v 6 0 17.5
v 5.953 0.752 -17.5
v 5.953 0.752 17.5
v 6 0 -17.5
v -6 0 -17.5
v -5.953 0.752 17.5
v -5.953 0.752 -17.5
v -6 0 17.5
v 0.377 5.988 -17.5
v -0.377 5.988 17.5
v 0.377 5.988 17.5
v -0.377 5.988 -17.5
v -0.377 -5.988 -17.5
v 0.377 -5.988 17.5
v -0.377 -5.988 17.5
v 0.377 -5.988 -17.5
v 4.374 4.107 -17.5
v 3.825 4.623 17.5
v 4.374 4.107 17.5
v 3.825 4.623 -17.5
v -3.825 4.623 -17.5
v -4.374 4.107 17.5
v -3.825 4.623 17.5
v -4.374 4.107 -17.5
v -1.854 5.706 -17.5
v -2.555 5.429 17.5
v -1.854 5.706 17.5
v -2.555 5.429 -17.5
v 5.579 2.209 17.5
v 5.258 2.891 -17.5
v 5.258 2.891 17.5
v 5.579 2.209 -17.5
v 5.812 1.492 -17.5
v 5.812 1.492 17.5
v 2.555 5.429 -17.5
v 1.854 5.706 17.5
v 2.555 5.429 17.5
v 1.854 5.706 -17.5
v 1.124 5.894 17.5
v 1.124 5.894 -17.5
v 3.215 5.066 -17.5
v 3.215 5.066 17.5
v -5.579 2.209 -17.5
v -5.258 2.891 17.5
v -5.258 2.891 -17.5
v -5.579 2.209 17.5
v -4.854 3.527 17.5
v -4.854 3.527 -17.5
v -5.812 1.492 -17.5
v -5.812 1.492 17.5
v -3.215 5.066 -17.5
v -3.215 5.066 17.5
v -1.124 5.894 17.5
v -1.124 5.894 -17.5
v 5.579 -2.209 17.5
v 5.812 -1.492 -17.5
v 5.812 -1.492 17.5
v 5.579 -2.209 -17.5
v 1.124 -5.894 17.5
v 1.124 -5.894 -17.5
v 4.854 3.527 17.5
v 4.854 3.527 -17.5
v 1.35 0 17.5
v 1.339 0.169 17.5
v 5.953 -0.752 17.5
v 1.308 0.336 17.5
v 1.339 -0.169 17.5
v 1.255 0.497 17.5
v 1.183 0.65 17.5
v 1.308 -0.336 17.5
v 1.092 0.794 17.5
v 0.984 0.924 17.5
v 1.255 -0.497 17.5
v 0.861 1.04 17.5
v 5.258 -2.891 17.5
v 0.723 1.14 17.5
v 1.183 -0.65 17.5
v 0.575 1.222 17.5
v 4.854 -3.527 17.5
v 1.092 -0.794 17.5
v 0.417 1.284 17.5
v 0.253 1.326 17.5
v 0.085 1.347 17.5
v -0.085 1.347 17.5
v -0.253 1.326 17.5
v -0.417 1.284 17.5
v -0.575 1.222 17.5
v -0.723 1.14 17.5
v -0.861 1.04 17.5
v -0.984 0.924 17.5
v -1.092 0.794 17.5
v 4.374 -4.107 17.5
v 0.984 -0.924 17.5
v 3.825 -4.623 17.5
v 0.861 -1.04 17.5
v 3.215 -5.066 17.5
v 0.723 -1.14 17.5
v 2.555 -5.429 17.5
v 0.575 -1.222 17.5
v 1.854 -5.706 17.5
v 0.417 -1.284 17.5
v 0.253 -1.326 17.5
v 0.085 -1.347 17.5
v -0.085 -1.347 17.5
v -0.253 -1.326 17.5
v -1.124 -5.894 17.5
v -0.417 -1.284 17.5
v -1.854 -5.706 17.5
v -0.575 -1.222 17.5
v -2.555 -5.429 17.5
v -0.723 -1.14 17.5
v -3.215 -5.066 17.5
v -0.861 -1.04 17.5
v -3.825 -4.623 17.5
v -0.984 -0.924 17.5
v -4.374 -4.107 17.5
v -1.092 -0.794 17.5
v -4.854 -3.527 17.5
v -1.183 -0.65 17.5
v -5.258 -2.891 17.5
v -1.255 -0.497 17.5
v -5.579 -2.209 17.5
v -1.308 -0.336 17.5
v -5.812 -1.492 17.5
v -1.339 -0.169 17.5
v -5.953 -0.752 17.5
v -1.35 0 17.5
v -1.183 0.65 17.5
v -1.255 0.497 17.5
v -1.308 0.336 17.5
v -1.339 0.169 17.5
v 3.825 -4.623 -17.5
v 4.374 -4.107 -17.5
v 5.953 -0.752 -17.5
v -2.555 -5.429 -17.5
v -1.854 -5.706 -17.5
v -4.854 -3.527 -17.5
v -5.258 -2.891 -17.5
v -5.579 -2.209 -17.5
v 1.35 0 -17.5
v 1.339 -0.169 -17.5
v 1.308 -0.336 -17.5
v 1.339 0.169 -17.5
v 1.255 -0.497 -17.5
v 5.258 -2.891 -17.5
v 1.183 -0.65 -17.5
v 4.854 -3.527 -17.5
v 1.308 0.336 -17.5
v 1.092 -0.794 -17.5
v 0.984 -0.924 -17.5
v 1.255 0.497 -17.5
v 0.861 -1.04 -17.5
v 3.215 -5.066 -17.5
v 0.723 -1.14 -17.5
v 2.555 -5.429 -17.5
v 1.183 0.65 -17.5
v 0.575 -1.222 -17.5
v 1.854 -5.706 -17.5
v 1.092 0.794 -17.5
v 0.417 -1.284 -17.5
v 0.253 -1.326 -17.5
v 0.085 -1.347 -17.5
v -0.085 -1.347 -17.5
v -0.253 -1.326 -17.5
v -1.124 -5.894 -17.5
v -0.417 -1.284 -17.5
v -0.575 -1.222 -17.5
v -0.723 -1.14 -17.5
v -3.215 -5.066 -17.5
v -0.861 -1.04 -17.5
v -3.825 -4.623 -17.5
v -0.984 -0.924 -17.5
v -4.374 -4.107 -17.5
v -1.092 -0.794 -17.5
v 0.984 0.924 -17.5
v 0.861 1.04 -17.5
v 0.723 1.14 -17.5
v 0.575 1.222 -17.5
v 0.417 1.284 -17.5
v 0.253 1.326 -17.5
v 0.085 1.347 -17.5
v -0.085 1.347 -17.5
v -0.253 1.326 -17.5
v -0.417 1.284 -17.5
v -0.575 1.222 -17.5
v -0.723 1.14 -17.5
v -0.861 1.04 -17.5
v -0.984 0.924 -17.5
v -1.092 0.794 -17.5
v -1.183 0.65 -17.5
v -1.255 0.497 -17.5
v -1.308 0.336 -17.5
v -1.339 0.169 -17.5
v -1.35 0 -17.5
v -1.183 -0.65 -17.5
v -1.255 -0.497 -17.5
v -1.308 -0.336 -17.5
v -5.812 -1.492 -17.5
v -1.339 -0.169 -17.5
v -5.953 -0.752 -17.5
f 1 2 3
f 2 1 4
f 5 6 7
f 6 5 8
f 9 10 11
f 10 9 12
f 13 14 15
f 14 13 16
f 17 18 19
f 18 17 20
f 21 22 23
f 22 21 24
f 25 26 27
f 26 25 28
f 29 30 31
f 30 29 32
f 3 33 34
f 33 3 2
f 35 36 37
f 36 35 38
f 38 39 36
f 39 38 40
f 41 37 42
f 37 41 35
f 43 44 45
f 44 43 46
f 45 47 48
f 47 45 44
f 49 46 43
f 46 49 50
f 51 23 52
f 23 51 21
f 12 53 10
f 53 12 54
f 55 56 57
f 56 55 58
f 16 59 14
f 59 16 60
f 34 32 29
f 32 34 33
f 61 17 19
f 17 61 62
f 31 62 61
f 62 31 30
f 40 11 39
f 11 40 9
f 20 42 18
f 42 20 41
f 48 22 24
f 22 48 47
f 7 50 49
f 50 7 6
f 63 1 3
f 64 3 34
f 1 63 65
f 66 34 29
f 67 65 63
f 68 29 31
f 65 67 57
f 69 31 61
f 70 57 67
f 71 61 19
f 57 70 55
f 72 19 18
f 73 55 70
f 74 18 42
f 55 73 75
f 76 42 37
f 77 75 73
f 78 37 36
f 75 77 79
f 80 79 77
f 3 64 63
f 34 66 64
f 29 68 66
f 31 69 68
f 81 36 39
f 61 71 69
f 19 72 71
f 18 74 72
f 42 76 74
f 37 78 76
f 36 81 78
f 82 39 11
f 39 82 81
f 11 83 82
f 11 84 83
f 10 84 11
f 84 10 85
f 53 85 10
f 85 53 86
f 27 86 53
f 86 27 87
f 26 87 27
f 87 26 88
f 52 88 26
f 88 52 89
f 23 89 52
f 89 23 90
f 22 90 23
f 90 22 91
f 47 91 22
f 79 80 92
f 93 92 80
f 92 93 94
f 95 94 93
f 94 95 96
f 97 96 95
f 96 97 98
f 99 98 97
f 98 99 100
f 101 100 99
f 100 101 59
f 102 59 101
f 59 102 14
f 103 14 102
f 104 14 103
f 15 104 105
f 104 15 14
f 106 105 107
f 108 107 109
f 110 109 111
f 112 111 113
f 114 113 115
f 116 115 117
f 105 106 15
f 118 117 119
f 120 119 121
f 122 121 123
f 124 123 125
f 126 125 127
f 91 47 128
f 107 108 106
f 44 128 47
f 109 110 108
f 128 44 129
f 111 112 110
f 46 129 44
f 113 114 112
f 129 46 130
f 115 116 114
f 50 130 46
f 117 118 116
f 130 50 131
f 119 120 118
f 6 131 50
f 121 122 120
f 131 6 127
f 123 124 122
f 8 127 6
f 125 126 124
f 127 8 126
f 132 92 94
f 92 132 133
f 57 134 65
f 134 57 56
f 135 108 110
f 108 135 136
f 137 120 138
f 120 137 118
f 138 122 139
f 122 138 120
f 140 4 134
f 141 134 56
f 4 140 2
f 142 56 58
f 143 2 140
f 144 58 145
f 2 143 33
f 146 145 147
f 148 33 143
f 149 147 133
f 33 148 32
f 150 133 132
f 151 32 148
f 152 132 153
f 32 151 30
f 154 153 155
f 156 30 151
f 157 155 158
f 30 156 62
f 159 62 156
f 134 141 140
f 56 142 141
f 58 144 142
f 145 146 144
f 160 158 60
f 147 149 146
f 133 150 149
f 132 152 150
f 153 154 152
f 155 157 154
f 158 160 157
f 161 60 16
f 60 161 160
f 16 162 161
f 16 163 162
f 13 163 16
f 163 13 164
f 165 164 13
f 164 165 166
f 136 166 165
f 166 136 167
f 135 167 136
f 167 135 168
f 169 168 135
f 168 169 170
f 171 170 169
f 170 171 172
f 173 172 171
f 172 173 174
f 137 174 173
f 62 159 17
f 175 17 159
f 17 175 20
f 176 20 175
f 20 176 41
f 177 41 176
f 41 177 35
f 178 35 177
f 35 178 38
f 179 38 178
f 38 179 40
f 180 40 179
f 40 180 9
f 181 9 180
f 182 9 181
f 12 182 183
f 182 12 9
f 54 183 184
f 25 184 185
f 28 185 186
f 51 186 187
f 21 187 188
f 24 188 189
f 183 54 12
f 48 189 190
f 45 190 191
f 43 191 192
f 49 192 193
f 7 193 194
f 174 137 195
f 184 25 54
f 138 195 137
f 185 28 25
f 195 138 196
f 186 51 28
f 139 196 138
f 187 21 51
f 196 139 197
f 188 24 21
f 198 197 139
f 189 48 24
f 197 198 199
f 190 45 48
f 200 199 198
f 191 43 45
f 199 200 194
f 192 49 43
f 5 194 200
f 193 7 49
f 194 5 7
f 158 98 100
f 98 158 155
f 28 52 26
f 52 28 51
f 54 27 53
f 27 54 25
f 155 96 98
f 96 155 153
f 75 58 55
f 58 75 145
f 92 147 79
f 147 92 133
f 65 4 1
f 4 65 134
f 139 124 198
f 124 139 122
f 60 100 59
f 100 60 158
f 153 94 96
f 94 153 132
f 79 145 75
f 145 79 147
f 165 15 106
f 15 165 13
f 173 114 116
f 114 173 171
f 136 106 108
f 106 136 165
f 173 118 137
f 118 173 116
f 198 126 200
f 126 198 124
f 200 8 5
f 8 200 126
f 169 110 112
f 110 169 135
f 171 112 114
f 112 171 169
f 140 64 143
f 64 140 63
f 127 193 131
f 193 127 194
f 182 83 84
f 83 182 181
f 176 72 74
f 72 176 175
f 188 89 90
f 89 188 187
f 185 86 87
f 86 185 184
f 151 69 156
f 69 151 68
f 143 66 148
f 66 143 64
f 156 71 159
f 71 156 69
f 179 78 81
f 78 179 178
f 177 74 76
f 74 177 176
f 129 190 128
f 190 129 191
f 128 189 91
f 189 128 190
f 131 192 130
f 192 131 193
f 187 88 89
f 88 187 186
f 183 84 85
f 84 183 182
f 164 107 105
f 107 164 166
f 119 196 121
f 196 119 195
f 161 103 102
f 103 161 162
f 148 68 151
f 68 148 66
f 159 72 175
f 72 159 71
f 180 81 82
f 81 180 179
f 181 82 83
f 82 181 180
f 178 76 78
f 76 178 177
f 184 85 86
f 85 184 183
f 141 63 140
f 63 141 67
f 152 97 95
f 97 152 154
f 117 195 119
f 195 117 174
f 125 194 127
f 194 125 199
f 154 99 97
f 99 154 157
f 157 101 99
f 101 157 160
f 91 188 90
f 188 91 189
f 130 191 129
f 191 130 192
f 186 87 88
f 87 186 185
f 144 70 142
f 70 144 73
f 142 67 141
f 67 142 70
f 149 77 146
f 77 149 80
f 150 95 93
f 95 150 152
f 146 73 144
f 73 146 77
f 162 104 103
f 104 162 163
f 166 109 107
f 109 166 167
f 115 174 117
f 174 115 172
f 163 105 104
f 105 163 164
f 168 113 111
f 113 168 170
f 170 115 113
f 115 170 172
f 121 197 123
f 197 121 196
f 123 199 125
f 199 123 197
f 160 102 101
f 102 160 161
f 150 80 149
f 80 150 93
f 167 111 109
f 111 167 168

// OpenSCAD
$fn = 50;


difference() {
	union() {
		translate(v = [0, 0, -17.5000000000]) {
			cylinder(h = 35, r = 6.0000000000);
		}
	}
	union() {
		translate(v = [0, 0, -100.0000000000]) {
			cylinder(h = 200, r = 1.3500000000);
		}
	}
}
